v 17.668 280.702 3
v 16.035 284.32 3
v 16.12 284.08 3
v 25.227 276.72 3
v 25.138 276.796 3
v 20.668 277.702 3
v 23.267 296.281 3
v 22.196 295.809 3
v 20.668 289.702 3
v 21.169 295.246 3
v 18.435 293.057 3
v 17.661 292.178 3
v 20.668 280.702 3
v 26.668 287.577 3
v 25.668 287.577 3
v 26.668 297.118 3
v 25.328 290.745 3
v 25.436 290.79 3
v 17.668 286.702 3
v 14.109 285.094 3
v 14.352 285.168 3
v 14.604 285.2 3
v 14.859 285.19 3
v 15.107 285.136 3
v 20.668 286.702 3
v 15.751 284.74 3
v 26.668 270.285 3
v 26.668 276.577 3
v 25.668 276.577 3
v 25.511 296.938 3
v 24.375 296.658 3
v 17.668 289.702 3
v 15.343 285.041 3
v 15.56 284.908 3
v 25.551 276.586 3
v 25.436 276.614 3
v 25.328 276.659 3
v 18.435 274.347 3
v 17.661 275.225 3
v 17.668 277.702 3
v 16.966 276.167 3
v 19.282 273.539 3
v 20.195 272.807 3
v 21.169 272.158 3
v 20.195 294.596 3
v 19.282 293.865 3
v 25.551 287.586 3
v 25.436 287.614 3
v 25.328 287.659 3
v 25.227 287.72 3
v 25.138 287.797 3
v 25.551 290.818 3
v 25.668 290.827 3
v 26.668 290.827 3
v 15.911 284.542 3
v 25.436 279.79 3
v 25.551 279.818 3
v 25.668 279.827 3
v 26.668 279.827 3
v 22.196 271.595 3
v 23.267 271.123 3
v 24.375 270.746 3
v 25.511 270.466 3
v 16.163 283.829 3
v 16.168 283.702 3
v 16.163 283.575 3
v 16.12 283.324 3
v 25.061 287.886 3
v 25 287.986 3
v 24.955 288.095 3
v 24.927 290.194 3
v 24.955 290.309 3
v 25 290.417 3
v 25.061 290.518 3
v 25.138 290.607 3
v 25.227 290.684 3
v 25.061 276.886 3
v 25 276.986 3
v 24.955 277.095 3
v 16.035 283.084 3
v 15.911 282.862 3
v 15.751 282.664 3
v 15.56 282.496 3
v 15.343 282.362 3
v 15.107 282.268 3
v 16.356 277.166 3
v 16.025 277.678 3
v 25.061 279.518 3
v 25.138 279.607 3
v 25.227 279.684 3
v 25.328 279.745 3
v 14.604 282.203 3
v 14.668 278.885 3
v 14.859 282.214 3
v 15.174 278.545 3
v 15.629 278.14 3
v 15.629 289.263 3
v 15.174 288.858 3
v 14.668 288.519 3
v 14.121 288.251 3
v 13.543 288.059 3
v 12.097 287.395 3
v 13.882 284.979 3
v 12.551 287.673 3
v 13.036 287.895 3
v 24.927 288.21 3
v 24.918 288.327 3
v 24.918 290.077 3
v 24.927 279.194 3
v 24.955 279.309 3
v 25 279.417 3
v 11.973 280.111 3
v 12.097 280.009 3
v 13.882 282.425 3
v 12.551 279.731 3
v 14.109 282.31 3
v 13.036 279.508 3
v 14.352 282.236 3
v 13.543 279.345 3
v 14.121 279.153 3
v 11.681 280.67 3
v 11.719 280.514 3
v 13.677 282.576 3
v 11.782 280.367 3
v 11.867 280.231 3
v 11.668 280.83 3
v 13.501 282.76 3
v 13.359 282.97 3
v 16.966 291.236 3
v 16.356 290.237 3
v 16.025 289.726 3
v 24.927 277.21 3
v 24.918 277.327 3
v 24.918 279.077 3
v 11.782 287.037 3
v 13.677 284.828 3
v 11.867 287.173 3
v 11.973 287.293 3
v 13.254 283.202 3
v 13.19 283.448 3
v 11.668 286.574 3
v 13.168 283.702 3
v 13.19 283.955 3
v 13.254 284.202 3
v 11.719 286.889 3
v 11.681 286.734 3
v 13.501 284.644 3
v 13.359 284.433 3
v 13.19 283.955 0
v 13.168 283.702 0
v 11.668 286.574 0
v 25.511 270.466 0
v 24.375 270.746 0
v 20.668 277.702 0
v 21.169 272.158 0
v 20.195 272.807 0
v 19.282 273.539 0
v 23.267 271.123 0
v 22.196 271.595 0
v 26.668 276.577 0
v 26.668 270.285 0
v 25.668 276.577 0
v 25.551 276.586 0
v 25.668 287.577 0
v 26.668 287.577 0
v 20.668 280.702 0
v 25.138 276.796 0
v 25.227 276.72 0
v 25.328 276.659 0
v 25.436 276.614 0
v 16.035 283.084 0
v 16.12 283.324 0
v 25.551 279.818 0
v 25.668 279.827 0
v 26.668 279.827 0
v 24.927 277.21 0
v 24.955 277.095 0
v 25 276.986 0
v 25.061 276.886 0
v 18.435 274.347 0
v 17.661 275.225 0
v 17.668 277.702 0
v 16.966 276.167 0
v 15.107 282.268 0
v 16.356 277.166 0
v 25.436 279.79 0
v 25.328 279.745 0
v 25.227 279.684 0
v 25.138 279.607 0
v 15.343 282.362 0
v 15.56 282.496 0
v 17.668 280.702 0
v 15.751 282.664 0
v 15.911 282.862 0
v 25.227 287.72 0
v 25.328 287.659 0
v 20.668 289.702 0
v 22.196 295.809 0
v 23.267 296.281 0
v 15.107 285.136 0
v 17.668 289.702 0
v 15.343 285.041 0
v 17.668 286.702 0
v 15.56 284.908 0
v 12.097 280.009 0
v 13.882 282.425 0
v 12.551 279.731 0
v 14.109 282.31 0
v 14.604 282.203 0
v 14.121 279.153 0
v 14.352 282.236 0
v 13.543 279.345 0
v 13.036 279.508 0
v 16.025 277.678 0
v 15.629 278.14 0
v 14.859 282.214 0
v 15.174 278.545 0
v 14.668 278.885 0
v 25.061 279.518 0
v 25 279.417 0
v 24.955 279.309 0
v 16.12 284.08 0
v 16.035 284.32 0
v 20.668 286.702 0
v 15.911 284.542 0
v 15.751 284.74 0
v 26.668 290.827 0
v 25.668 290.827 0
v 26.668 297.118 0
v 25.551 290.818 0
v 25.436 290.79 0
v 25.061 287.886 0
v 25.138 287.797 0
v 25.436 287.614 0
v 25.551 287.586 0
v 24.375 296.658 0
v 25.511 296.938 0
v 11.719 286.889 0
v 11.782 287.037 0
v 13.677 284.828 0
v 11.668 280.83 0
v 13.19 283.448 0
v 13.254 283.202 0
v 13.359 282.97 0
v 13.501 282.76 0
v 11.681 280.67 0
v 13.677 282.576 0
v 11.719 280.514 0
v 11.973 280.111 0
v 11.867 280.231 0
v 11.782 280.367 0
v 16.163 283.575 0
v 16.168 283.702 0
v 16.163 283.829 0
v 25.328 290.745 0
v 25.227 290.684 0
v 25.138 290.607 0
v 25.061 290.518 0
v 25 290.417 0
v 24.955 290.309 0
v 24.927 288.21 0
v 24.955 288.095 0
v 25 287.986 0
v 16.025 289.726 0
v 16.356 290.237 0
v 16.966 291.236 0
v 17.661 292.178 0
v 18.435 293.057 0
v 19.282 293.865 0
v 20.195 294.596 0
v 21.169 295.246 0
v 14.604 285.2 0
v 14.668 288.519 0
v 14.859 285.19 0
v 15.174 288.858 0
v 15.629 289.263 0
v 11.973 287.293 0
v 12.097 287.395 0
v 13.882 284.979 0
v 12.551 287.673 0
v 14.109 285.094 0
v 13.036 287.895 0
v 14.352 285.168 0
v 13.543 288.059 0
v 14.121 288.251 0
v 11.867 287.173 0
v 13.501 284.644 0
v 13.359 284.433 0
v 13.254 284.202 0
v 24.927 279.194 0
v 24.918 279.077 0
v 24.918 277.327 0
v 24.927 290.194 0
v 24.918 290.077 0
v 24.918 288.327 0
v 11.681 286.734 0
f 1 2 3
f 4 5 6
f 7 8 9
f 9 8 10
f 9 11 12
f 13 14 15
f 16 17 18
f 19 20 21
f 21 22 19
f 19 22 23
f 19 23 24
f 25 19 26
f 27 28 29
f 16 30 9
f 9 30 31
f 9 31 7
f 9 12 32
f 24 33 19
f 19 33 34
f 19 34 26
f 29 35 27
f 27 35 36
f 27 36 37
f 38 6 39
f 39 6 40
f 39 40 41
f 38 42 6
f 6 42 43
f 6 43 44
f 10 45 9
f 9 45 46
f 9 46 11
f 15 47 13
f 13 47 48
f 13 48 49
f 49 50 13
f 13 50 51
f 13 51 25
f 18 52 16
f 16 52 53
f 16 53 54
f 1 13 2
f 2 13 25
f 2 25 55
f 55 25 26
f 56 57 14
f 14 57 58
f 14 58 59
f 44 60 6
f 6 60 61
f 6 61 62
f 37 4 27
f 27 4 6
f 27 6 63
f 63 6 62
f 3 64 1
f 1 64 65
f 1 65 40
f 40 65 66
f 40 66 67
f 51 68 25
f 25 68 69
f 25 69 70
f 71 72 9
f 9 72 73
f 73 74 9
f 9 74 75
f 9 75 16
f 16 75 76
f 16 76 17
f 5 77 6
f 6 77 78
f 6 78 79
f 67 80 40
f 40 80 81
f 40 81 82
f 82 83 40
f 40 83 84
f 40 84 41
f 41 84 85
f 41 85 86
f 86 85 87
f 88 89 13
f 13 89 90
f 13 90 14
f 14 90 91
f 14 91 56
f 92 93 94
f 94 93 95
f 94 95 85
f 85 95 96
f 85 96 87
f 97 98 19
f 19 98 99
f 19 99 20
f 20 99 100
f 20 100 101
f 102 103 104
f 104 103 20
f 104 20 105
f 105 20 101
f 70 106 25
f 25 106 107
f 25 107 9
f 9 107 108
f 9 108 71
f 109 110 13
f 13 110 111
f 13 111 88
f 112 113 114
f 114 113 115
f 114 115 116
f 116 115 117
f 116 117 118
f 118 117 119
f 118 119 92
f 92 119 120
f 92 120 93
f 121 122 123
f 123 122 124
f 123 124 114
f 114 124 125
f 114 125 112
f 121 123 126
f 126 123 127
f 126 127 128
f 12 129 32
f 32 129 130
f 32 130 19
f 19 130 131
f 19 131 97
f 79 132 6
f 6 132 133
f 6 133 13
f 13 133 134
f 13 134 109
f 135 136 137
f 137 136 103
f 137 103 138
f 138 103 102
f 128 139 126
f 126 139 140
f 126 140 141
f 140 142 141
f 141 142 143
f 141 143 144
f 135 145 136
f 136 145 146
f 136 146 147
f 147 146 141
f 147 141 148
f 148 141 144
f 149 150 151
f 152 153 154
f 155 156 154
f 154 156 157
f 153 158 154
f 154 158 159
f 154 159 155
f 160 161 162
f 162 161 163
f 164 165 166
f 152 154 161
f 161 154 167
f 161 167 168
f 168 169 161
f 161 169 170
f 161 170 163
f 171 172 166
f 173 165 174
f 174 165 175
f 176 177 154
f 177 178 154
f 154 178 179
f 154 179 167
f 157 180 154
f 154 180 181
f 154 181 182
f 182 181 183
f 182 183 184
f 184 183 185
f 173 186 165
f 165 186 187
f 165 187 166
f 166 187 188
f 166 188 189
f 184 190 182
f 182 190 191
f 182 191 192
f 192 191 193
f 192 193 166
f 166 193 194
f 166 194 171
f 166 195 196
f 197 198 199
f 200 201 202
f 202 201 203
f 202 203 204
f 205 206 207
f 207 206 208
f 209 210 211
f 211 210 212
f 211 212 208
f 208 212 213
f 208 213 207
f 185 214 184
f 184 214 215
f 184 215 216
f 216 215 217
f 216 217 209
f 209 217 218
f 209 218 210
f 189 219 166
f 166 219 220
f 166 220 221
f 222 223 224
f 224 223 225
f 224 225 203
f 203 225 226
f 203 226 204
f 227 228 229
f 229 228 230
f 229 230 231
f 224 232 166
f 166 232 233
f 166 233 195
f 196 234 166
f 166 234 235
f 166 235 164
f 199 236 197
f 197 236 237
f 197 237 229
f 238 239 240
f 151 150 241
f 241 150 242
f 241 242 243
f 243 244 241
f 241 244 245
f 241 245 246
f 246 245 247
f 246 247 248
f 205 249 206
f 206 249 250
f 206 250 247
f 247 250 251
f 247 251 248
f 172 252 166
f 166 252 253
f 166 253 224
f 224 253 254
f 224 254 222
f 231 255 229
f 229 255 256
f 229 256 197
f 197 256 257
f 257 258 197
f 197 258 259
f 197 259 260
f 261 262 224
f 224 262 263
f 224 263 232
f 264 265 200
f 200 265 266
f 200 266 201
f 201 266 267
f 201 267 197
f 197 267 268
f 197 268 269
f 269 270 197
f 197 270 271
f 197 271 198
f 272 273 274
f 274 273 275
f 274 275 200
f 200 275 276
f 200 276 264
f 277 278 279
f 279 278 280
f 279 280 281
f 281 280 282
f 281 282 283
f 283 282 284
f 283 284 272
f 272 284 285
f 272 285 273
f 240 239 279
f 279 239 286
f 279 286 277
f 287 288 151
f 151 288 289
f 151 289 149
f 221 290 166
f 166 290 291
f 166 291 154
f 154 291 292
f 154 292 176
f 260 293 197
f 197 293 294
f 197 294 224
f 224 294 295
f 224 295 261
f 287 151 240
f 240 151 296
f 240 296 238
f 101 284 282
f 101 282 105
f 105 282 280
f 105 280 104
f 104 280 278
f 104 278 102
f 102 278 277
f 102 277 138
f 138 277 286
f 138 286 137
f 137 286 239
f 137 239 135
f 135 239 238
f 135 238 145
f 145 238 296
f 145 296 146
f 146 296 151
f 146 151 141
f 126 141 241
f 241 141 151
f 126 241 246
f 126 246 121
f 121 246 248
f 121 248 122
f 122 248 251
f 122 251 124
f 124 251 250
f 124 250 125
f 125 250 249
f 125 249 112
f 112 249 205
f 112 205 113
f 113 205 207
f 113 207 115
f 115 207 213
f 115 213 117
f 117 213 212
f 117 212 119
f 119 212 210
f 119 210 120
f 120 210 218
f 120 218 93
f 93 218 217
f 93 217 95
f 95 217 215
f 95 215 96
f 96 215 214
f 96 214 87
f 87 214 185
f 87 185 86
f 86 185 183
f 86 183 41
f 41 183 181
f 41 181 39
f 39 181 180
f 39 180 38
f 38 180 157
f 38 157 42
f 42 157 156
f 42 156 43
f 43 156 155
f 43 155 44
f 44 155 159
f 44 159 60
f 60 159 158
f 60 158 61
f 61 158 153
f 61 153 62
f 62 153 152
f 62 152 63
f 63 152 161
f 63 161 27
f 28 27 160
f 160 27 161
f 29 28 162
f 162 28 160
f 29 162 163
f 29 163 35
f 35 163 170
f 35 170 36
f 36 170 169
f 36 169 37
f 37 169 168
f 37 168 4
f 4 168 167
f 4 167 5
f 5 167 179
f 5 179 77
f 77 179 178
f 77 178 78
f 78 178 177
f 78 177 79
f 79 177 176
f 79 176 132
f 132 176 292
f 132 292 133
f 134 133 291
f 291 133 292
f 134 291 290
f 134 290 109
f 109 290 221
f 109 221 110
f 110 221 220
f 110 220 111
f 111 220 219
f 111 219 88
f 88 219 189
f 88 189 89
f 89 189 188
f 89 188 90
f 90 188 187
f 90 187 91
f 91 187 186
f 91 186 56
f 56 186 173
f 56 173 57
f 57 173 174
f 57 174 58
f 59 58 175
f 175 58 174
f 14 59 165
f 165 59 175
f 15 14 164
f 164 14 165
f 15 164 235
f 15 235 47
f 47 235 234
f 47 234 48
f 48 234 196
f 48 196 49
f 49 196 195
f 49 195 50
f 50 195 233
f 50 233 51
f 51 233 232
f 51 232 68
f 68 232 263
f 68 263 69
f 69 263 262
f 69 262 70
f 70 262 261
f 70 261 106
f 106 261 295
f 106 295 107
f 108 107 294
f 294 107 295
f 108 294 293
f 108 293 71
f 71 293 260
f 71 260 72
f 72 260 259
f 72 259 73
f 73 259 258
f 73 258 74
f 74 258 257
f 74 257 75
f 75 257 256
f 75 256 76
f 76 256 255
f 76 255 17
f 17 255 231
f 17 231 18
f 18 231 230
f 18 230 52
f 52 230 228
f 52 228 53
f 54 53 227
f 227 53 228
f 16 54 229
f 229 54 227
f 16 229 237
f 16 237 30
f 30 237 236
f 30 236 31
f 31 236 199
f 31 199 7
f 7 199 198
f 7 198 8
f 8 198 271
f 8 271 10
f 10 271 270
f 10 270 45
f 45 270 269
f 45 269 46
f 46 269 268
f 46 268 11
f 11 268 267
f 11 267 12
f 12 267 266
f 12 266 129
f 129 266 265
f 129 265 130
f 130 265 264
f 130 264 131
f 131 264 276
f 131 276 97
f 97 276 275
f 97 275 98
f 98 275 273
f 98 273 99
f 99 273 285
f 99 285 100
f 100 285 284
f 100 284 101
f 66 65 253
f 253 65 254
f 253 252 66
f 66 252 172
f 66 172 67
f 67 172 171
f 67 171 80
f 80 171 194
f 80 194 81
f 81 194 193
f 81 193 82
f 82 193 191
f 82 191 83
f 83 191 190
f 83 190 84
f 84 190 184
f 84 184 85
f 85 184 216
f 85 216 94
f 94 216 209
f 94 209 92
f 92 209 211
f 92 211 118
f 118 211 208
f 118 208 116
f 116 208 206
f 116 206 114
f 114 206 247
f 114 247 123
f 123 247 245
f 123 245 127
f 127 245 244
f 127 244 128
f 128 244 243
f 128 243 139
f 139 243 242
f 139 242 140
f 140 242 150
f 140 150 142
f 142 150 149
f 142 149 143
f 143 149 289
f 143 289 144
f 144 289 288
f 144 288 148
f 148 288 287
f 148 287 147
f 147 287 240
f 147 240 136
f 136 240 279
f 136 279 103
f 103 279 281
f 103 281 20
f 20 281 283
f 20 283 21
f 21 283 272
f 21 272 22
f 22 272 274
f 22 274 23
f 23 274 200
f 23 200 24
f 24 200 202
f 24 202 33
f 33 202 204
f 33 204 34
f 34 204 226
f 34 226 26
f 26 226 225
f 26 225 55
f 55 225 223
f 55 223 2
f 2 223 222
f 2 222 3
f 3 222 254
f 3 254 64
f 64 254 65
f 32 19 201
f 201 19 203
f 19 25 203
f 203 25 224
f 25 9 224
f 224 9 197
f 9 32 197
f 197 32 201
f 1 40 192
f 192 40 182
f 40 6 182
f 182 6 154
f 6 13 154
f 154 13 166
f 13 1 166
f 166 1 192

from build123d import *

# Parameters (mm, degrees)
MODEL_R                 = 1.5
MODEL_W                 = 3
MODEL_H                 = 3
SALIENTE_EXTRUIR1_DEPTH = 3


with BuildPart() as part:
    # Model → Saliente-Extruir1 (new body)
    with BuildSketch(Plane.XY):
        with BuildLine():
            Line((11.668043303, 286.574114522), (11.668043303, 280.829551876))
            ThreePointArc((11.668043303, 280.829551876), (11.781638042, 280.366641826), (12.096614731, 280.008900069))
            ThreePointArc((12.096614731, 280.008900069), (12.790231402, 279.612356159), (13.543043303, 279.344726935))
            ThreePointArc((13.543043303, 279.344726935), (15.173719263, 278.545183038), (16.355543303, 277.166173803))
            ThreePointArc((16.355543303, 277.166173803), (20.67525751, 272.472044196), (26.668043303, 270.285425334))
            Line((26.668043303, 270.285425334), (26.668043303, 276.576833199))
            Line((26.668043303, 276.576833199), (25.668043303, 276.576833199))
            ThreePointArc((25.668043303, 276.576833199), (25.137713217, 276.796503113), (24.918043303, 277.326833199))
            Line((24.918043303, 277.326833199), (24.918043303, 279.076833199))
            ThreePointArc((24.918043303, 279.076833199), (25.137713217, 279.607163285), (25.668043303, 279.826833199))
            Line((25.668043303, 279.826833199), (26.668043303, 279.826833199))
            Line((26.668043303, 279.826833199), (26.668043303, 287.576833199))
            Line((26.668043303, 287.576833199), (25.668043303, 287.576833199))
            ThreePointArc((25.668043303, 287.576833199), (25.137713217, 287.796503113), (24.918043303, 288.326833199))
            Line((24.918043303, 288.326833199), (24.918043303, 290.076833199))
            ThreePointArc((24.918043303, 290.076833199), (25.137713217, 290.607163285), (25.668043303, 290.826833199))
            Line((25.668043303, 290.826833199), (26.668043303, 290.826833199))
            Line((26.668043303, 290.826833199), (26.668043303, 297.118241064))
            ThreePointArc((26.668043303, 297.118241064), (20.67525751, 294.931622203), (16.355543303, 290.237492596))
            ThreePointArc((16.355543303, 290.237492596), (15.173719263, 288.858483361), (13.543043303, 288.058939464))
            ThreePointArc((13.543043303, 288.058939464), (12.790231402, 287.79131024), (12.096614731, 287.394766329))
            ThreePointArc((12.096614731, 287.394766329), (11.781638042, 287.037024572), (11.668043303, 286.574114522))
        make_face()
        with Locations((14.668043303, 283.701833199)):
            Circle(MODEL_R, mode=Mode.SUBTRACT)
        with Locations((19.168043303, 288.201833199)):
            Rectangle(MODEL_W, MODEL_H, mode=Mode.SUBTRACT)
        with Locations((19.168043303, 279.201833199)):
            Rectangle(MODEL_W, MODEL_H, mode=Mode.SUBTRACT)
    extrude(amount=SALIENTE_EXTRUIR1_DEPTH)


solid = part.part
